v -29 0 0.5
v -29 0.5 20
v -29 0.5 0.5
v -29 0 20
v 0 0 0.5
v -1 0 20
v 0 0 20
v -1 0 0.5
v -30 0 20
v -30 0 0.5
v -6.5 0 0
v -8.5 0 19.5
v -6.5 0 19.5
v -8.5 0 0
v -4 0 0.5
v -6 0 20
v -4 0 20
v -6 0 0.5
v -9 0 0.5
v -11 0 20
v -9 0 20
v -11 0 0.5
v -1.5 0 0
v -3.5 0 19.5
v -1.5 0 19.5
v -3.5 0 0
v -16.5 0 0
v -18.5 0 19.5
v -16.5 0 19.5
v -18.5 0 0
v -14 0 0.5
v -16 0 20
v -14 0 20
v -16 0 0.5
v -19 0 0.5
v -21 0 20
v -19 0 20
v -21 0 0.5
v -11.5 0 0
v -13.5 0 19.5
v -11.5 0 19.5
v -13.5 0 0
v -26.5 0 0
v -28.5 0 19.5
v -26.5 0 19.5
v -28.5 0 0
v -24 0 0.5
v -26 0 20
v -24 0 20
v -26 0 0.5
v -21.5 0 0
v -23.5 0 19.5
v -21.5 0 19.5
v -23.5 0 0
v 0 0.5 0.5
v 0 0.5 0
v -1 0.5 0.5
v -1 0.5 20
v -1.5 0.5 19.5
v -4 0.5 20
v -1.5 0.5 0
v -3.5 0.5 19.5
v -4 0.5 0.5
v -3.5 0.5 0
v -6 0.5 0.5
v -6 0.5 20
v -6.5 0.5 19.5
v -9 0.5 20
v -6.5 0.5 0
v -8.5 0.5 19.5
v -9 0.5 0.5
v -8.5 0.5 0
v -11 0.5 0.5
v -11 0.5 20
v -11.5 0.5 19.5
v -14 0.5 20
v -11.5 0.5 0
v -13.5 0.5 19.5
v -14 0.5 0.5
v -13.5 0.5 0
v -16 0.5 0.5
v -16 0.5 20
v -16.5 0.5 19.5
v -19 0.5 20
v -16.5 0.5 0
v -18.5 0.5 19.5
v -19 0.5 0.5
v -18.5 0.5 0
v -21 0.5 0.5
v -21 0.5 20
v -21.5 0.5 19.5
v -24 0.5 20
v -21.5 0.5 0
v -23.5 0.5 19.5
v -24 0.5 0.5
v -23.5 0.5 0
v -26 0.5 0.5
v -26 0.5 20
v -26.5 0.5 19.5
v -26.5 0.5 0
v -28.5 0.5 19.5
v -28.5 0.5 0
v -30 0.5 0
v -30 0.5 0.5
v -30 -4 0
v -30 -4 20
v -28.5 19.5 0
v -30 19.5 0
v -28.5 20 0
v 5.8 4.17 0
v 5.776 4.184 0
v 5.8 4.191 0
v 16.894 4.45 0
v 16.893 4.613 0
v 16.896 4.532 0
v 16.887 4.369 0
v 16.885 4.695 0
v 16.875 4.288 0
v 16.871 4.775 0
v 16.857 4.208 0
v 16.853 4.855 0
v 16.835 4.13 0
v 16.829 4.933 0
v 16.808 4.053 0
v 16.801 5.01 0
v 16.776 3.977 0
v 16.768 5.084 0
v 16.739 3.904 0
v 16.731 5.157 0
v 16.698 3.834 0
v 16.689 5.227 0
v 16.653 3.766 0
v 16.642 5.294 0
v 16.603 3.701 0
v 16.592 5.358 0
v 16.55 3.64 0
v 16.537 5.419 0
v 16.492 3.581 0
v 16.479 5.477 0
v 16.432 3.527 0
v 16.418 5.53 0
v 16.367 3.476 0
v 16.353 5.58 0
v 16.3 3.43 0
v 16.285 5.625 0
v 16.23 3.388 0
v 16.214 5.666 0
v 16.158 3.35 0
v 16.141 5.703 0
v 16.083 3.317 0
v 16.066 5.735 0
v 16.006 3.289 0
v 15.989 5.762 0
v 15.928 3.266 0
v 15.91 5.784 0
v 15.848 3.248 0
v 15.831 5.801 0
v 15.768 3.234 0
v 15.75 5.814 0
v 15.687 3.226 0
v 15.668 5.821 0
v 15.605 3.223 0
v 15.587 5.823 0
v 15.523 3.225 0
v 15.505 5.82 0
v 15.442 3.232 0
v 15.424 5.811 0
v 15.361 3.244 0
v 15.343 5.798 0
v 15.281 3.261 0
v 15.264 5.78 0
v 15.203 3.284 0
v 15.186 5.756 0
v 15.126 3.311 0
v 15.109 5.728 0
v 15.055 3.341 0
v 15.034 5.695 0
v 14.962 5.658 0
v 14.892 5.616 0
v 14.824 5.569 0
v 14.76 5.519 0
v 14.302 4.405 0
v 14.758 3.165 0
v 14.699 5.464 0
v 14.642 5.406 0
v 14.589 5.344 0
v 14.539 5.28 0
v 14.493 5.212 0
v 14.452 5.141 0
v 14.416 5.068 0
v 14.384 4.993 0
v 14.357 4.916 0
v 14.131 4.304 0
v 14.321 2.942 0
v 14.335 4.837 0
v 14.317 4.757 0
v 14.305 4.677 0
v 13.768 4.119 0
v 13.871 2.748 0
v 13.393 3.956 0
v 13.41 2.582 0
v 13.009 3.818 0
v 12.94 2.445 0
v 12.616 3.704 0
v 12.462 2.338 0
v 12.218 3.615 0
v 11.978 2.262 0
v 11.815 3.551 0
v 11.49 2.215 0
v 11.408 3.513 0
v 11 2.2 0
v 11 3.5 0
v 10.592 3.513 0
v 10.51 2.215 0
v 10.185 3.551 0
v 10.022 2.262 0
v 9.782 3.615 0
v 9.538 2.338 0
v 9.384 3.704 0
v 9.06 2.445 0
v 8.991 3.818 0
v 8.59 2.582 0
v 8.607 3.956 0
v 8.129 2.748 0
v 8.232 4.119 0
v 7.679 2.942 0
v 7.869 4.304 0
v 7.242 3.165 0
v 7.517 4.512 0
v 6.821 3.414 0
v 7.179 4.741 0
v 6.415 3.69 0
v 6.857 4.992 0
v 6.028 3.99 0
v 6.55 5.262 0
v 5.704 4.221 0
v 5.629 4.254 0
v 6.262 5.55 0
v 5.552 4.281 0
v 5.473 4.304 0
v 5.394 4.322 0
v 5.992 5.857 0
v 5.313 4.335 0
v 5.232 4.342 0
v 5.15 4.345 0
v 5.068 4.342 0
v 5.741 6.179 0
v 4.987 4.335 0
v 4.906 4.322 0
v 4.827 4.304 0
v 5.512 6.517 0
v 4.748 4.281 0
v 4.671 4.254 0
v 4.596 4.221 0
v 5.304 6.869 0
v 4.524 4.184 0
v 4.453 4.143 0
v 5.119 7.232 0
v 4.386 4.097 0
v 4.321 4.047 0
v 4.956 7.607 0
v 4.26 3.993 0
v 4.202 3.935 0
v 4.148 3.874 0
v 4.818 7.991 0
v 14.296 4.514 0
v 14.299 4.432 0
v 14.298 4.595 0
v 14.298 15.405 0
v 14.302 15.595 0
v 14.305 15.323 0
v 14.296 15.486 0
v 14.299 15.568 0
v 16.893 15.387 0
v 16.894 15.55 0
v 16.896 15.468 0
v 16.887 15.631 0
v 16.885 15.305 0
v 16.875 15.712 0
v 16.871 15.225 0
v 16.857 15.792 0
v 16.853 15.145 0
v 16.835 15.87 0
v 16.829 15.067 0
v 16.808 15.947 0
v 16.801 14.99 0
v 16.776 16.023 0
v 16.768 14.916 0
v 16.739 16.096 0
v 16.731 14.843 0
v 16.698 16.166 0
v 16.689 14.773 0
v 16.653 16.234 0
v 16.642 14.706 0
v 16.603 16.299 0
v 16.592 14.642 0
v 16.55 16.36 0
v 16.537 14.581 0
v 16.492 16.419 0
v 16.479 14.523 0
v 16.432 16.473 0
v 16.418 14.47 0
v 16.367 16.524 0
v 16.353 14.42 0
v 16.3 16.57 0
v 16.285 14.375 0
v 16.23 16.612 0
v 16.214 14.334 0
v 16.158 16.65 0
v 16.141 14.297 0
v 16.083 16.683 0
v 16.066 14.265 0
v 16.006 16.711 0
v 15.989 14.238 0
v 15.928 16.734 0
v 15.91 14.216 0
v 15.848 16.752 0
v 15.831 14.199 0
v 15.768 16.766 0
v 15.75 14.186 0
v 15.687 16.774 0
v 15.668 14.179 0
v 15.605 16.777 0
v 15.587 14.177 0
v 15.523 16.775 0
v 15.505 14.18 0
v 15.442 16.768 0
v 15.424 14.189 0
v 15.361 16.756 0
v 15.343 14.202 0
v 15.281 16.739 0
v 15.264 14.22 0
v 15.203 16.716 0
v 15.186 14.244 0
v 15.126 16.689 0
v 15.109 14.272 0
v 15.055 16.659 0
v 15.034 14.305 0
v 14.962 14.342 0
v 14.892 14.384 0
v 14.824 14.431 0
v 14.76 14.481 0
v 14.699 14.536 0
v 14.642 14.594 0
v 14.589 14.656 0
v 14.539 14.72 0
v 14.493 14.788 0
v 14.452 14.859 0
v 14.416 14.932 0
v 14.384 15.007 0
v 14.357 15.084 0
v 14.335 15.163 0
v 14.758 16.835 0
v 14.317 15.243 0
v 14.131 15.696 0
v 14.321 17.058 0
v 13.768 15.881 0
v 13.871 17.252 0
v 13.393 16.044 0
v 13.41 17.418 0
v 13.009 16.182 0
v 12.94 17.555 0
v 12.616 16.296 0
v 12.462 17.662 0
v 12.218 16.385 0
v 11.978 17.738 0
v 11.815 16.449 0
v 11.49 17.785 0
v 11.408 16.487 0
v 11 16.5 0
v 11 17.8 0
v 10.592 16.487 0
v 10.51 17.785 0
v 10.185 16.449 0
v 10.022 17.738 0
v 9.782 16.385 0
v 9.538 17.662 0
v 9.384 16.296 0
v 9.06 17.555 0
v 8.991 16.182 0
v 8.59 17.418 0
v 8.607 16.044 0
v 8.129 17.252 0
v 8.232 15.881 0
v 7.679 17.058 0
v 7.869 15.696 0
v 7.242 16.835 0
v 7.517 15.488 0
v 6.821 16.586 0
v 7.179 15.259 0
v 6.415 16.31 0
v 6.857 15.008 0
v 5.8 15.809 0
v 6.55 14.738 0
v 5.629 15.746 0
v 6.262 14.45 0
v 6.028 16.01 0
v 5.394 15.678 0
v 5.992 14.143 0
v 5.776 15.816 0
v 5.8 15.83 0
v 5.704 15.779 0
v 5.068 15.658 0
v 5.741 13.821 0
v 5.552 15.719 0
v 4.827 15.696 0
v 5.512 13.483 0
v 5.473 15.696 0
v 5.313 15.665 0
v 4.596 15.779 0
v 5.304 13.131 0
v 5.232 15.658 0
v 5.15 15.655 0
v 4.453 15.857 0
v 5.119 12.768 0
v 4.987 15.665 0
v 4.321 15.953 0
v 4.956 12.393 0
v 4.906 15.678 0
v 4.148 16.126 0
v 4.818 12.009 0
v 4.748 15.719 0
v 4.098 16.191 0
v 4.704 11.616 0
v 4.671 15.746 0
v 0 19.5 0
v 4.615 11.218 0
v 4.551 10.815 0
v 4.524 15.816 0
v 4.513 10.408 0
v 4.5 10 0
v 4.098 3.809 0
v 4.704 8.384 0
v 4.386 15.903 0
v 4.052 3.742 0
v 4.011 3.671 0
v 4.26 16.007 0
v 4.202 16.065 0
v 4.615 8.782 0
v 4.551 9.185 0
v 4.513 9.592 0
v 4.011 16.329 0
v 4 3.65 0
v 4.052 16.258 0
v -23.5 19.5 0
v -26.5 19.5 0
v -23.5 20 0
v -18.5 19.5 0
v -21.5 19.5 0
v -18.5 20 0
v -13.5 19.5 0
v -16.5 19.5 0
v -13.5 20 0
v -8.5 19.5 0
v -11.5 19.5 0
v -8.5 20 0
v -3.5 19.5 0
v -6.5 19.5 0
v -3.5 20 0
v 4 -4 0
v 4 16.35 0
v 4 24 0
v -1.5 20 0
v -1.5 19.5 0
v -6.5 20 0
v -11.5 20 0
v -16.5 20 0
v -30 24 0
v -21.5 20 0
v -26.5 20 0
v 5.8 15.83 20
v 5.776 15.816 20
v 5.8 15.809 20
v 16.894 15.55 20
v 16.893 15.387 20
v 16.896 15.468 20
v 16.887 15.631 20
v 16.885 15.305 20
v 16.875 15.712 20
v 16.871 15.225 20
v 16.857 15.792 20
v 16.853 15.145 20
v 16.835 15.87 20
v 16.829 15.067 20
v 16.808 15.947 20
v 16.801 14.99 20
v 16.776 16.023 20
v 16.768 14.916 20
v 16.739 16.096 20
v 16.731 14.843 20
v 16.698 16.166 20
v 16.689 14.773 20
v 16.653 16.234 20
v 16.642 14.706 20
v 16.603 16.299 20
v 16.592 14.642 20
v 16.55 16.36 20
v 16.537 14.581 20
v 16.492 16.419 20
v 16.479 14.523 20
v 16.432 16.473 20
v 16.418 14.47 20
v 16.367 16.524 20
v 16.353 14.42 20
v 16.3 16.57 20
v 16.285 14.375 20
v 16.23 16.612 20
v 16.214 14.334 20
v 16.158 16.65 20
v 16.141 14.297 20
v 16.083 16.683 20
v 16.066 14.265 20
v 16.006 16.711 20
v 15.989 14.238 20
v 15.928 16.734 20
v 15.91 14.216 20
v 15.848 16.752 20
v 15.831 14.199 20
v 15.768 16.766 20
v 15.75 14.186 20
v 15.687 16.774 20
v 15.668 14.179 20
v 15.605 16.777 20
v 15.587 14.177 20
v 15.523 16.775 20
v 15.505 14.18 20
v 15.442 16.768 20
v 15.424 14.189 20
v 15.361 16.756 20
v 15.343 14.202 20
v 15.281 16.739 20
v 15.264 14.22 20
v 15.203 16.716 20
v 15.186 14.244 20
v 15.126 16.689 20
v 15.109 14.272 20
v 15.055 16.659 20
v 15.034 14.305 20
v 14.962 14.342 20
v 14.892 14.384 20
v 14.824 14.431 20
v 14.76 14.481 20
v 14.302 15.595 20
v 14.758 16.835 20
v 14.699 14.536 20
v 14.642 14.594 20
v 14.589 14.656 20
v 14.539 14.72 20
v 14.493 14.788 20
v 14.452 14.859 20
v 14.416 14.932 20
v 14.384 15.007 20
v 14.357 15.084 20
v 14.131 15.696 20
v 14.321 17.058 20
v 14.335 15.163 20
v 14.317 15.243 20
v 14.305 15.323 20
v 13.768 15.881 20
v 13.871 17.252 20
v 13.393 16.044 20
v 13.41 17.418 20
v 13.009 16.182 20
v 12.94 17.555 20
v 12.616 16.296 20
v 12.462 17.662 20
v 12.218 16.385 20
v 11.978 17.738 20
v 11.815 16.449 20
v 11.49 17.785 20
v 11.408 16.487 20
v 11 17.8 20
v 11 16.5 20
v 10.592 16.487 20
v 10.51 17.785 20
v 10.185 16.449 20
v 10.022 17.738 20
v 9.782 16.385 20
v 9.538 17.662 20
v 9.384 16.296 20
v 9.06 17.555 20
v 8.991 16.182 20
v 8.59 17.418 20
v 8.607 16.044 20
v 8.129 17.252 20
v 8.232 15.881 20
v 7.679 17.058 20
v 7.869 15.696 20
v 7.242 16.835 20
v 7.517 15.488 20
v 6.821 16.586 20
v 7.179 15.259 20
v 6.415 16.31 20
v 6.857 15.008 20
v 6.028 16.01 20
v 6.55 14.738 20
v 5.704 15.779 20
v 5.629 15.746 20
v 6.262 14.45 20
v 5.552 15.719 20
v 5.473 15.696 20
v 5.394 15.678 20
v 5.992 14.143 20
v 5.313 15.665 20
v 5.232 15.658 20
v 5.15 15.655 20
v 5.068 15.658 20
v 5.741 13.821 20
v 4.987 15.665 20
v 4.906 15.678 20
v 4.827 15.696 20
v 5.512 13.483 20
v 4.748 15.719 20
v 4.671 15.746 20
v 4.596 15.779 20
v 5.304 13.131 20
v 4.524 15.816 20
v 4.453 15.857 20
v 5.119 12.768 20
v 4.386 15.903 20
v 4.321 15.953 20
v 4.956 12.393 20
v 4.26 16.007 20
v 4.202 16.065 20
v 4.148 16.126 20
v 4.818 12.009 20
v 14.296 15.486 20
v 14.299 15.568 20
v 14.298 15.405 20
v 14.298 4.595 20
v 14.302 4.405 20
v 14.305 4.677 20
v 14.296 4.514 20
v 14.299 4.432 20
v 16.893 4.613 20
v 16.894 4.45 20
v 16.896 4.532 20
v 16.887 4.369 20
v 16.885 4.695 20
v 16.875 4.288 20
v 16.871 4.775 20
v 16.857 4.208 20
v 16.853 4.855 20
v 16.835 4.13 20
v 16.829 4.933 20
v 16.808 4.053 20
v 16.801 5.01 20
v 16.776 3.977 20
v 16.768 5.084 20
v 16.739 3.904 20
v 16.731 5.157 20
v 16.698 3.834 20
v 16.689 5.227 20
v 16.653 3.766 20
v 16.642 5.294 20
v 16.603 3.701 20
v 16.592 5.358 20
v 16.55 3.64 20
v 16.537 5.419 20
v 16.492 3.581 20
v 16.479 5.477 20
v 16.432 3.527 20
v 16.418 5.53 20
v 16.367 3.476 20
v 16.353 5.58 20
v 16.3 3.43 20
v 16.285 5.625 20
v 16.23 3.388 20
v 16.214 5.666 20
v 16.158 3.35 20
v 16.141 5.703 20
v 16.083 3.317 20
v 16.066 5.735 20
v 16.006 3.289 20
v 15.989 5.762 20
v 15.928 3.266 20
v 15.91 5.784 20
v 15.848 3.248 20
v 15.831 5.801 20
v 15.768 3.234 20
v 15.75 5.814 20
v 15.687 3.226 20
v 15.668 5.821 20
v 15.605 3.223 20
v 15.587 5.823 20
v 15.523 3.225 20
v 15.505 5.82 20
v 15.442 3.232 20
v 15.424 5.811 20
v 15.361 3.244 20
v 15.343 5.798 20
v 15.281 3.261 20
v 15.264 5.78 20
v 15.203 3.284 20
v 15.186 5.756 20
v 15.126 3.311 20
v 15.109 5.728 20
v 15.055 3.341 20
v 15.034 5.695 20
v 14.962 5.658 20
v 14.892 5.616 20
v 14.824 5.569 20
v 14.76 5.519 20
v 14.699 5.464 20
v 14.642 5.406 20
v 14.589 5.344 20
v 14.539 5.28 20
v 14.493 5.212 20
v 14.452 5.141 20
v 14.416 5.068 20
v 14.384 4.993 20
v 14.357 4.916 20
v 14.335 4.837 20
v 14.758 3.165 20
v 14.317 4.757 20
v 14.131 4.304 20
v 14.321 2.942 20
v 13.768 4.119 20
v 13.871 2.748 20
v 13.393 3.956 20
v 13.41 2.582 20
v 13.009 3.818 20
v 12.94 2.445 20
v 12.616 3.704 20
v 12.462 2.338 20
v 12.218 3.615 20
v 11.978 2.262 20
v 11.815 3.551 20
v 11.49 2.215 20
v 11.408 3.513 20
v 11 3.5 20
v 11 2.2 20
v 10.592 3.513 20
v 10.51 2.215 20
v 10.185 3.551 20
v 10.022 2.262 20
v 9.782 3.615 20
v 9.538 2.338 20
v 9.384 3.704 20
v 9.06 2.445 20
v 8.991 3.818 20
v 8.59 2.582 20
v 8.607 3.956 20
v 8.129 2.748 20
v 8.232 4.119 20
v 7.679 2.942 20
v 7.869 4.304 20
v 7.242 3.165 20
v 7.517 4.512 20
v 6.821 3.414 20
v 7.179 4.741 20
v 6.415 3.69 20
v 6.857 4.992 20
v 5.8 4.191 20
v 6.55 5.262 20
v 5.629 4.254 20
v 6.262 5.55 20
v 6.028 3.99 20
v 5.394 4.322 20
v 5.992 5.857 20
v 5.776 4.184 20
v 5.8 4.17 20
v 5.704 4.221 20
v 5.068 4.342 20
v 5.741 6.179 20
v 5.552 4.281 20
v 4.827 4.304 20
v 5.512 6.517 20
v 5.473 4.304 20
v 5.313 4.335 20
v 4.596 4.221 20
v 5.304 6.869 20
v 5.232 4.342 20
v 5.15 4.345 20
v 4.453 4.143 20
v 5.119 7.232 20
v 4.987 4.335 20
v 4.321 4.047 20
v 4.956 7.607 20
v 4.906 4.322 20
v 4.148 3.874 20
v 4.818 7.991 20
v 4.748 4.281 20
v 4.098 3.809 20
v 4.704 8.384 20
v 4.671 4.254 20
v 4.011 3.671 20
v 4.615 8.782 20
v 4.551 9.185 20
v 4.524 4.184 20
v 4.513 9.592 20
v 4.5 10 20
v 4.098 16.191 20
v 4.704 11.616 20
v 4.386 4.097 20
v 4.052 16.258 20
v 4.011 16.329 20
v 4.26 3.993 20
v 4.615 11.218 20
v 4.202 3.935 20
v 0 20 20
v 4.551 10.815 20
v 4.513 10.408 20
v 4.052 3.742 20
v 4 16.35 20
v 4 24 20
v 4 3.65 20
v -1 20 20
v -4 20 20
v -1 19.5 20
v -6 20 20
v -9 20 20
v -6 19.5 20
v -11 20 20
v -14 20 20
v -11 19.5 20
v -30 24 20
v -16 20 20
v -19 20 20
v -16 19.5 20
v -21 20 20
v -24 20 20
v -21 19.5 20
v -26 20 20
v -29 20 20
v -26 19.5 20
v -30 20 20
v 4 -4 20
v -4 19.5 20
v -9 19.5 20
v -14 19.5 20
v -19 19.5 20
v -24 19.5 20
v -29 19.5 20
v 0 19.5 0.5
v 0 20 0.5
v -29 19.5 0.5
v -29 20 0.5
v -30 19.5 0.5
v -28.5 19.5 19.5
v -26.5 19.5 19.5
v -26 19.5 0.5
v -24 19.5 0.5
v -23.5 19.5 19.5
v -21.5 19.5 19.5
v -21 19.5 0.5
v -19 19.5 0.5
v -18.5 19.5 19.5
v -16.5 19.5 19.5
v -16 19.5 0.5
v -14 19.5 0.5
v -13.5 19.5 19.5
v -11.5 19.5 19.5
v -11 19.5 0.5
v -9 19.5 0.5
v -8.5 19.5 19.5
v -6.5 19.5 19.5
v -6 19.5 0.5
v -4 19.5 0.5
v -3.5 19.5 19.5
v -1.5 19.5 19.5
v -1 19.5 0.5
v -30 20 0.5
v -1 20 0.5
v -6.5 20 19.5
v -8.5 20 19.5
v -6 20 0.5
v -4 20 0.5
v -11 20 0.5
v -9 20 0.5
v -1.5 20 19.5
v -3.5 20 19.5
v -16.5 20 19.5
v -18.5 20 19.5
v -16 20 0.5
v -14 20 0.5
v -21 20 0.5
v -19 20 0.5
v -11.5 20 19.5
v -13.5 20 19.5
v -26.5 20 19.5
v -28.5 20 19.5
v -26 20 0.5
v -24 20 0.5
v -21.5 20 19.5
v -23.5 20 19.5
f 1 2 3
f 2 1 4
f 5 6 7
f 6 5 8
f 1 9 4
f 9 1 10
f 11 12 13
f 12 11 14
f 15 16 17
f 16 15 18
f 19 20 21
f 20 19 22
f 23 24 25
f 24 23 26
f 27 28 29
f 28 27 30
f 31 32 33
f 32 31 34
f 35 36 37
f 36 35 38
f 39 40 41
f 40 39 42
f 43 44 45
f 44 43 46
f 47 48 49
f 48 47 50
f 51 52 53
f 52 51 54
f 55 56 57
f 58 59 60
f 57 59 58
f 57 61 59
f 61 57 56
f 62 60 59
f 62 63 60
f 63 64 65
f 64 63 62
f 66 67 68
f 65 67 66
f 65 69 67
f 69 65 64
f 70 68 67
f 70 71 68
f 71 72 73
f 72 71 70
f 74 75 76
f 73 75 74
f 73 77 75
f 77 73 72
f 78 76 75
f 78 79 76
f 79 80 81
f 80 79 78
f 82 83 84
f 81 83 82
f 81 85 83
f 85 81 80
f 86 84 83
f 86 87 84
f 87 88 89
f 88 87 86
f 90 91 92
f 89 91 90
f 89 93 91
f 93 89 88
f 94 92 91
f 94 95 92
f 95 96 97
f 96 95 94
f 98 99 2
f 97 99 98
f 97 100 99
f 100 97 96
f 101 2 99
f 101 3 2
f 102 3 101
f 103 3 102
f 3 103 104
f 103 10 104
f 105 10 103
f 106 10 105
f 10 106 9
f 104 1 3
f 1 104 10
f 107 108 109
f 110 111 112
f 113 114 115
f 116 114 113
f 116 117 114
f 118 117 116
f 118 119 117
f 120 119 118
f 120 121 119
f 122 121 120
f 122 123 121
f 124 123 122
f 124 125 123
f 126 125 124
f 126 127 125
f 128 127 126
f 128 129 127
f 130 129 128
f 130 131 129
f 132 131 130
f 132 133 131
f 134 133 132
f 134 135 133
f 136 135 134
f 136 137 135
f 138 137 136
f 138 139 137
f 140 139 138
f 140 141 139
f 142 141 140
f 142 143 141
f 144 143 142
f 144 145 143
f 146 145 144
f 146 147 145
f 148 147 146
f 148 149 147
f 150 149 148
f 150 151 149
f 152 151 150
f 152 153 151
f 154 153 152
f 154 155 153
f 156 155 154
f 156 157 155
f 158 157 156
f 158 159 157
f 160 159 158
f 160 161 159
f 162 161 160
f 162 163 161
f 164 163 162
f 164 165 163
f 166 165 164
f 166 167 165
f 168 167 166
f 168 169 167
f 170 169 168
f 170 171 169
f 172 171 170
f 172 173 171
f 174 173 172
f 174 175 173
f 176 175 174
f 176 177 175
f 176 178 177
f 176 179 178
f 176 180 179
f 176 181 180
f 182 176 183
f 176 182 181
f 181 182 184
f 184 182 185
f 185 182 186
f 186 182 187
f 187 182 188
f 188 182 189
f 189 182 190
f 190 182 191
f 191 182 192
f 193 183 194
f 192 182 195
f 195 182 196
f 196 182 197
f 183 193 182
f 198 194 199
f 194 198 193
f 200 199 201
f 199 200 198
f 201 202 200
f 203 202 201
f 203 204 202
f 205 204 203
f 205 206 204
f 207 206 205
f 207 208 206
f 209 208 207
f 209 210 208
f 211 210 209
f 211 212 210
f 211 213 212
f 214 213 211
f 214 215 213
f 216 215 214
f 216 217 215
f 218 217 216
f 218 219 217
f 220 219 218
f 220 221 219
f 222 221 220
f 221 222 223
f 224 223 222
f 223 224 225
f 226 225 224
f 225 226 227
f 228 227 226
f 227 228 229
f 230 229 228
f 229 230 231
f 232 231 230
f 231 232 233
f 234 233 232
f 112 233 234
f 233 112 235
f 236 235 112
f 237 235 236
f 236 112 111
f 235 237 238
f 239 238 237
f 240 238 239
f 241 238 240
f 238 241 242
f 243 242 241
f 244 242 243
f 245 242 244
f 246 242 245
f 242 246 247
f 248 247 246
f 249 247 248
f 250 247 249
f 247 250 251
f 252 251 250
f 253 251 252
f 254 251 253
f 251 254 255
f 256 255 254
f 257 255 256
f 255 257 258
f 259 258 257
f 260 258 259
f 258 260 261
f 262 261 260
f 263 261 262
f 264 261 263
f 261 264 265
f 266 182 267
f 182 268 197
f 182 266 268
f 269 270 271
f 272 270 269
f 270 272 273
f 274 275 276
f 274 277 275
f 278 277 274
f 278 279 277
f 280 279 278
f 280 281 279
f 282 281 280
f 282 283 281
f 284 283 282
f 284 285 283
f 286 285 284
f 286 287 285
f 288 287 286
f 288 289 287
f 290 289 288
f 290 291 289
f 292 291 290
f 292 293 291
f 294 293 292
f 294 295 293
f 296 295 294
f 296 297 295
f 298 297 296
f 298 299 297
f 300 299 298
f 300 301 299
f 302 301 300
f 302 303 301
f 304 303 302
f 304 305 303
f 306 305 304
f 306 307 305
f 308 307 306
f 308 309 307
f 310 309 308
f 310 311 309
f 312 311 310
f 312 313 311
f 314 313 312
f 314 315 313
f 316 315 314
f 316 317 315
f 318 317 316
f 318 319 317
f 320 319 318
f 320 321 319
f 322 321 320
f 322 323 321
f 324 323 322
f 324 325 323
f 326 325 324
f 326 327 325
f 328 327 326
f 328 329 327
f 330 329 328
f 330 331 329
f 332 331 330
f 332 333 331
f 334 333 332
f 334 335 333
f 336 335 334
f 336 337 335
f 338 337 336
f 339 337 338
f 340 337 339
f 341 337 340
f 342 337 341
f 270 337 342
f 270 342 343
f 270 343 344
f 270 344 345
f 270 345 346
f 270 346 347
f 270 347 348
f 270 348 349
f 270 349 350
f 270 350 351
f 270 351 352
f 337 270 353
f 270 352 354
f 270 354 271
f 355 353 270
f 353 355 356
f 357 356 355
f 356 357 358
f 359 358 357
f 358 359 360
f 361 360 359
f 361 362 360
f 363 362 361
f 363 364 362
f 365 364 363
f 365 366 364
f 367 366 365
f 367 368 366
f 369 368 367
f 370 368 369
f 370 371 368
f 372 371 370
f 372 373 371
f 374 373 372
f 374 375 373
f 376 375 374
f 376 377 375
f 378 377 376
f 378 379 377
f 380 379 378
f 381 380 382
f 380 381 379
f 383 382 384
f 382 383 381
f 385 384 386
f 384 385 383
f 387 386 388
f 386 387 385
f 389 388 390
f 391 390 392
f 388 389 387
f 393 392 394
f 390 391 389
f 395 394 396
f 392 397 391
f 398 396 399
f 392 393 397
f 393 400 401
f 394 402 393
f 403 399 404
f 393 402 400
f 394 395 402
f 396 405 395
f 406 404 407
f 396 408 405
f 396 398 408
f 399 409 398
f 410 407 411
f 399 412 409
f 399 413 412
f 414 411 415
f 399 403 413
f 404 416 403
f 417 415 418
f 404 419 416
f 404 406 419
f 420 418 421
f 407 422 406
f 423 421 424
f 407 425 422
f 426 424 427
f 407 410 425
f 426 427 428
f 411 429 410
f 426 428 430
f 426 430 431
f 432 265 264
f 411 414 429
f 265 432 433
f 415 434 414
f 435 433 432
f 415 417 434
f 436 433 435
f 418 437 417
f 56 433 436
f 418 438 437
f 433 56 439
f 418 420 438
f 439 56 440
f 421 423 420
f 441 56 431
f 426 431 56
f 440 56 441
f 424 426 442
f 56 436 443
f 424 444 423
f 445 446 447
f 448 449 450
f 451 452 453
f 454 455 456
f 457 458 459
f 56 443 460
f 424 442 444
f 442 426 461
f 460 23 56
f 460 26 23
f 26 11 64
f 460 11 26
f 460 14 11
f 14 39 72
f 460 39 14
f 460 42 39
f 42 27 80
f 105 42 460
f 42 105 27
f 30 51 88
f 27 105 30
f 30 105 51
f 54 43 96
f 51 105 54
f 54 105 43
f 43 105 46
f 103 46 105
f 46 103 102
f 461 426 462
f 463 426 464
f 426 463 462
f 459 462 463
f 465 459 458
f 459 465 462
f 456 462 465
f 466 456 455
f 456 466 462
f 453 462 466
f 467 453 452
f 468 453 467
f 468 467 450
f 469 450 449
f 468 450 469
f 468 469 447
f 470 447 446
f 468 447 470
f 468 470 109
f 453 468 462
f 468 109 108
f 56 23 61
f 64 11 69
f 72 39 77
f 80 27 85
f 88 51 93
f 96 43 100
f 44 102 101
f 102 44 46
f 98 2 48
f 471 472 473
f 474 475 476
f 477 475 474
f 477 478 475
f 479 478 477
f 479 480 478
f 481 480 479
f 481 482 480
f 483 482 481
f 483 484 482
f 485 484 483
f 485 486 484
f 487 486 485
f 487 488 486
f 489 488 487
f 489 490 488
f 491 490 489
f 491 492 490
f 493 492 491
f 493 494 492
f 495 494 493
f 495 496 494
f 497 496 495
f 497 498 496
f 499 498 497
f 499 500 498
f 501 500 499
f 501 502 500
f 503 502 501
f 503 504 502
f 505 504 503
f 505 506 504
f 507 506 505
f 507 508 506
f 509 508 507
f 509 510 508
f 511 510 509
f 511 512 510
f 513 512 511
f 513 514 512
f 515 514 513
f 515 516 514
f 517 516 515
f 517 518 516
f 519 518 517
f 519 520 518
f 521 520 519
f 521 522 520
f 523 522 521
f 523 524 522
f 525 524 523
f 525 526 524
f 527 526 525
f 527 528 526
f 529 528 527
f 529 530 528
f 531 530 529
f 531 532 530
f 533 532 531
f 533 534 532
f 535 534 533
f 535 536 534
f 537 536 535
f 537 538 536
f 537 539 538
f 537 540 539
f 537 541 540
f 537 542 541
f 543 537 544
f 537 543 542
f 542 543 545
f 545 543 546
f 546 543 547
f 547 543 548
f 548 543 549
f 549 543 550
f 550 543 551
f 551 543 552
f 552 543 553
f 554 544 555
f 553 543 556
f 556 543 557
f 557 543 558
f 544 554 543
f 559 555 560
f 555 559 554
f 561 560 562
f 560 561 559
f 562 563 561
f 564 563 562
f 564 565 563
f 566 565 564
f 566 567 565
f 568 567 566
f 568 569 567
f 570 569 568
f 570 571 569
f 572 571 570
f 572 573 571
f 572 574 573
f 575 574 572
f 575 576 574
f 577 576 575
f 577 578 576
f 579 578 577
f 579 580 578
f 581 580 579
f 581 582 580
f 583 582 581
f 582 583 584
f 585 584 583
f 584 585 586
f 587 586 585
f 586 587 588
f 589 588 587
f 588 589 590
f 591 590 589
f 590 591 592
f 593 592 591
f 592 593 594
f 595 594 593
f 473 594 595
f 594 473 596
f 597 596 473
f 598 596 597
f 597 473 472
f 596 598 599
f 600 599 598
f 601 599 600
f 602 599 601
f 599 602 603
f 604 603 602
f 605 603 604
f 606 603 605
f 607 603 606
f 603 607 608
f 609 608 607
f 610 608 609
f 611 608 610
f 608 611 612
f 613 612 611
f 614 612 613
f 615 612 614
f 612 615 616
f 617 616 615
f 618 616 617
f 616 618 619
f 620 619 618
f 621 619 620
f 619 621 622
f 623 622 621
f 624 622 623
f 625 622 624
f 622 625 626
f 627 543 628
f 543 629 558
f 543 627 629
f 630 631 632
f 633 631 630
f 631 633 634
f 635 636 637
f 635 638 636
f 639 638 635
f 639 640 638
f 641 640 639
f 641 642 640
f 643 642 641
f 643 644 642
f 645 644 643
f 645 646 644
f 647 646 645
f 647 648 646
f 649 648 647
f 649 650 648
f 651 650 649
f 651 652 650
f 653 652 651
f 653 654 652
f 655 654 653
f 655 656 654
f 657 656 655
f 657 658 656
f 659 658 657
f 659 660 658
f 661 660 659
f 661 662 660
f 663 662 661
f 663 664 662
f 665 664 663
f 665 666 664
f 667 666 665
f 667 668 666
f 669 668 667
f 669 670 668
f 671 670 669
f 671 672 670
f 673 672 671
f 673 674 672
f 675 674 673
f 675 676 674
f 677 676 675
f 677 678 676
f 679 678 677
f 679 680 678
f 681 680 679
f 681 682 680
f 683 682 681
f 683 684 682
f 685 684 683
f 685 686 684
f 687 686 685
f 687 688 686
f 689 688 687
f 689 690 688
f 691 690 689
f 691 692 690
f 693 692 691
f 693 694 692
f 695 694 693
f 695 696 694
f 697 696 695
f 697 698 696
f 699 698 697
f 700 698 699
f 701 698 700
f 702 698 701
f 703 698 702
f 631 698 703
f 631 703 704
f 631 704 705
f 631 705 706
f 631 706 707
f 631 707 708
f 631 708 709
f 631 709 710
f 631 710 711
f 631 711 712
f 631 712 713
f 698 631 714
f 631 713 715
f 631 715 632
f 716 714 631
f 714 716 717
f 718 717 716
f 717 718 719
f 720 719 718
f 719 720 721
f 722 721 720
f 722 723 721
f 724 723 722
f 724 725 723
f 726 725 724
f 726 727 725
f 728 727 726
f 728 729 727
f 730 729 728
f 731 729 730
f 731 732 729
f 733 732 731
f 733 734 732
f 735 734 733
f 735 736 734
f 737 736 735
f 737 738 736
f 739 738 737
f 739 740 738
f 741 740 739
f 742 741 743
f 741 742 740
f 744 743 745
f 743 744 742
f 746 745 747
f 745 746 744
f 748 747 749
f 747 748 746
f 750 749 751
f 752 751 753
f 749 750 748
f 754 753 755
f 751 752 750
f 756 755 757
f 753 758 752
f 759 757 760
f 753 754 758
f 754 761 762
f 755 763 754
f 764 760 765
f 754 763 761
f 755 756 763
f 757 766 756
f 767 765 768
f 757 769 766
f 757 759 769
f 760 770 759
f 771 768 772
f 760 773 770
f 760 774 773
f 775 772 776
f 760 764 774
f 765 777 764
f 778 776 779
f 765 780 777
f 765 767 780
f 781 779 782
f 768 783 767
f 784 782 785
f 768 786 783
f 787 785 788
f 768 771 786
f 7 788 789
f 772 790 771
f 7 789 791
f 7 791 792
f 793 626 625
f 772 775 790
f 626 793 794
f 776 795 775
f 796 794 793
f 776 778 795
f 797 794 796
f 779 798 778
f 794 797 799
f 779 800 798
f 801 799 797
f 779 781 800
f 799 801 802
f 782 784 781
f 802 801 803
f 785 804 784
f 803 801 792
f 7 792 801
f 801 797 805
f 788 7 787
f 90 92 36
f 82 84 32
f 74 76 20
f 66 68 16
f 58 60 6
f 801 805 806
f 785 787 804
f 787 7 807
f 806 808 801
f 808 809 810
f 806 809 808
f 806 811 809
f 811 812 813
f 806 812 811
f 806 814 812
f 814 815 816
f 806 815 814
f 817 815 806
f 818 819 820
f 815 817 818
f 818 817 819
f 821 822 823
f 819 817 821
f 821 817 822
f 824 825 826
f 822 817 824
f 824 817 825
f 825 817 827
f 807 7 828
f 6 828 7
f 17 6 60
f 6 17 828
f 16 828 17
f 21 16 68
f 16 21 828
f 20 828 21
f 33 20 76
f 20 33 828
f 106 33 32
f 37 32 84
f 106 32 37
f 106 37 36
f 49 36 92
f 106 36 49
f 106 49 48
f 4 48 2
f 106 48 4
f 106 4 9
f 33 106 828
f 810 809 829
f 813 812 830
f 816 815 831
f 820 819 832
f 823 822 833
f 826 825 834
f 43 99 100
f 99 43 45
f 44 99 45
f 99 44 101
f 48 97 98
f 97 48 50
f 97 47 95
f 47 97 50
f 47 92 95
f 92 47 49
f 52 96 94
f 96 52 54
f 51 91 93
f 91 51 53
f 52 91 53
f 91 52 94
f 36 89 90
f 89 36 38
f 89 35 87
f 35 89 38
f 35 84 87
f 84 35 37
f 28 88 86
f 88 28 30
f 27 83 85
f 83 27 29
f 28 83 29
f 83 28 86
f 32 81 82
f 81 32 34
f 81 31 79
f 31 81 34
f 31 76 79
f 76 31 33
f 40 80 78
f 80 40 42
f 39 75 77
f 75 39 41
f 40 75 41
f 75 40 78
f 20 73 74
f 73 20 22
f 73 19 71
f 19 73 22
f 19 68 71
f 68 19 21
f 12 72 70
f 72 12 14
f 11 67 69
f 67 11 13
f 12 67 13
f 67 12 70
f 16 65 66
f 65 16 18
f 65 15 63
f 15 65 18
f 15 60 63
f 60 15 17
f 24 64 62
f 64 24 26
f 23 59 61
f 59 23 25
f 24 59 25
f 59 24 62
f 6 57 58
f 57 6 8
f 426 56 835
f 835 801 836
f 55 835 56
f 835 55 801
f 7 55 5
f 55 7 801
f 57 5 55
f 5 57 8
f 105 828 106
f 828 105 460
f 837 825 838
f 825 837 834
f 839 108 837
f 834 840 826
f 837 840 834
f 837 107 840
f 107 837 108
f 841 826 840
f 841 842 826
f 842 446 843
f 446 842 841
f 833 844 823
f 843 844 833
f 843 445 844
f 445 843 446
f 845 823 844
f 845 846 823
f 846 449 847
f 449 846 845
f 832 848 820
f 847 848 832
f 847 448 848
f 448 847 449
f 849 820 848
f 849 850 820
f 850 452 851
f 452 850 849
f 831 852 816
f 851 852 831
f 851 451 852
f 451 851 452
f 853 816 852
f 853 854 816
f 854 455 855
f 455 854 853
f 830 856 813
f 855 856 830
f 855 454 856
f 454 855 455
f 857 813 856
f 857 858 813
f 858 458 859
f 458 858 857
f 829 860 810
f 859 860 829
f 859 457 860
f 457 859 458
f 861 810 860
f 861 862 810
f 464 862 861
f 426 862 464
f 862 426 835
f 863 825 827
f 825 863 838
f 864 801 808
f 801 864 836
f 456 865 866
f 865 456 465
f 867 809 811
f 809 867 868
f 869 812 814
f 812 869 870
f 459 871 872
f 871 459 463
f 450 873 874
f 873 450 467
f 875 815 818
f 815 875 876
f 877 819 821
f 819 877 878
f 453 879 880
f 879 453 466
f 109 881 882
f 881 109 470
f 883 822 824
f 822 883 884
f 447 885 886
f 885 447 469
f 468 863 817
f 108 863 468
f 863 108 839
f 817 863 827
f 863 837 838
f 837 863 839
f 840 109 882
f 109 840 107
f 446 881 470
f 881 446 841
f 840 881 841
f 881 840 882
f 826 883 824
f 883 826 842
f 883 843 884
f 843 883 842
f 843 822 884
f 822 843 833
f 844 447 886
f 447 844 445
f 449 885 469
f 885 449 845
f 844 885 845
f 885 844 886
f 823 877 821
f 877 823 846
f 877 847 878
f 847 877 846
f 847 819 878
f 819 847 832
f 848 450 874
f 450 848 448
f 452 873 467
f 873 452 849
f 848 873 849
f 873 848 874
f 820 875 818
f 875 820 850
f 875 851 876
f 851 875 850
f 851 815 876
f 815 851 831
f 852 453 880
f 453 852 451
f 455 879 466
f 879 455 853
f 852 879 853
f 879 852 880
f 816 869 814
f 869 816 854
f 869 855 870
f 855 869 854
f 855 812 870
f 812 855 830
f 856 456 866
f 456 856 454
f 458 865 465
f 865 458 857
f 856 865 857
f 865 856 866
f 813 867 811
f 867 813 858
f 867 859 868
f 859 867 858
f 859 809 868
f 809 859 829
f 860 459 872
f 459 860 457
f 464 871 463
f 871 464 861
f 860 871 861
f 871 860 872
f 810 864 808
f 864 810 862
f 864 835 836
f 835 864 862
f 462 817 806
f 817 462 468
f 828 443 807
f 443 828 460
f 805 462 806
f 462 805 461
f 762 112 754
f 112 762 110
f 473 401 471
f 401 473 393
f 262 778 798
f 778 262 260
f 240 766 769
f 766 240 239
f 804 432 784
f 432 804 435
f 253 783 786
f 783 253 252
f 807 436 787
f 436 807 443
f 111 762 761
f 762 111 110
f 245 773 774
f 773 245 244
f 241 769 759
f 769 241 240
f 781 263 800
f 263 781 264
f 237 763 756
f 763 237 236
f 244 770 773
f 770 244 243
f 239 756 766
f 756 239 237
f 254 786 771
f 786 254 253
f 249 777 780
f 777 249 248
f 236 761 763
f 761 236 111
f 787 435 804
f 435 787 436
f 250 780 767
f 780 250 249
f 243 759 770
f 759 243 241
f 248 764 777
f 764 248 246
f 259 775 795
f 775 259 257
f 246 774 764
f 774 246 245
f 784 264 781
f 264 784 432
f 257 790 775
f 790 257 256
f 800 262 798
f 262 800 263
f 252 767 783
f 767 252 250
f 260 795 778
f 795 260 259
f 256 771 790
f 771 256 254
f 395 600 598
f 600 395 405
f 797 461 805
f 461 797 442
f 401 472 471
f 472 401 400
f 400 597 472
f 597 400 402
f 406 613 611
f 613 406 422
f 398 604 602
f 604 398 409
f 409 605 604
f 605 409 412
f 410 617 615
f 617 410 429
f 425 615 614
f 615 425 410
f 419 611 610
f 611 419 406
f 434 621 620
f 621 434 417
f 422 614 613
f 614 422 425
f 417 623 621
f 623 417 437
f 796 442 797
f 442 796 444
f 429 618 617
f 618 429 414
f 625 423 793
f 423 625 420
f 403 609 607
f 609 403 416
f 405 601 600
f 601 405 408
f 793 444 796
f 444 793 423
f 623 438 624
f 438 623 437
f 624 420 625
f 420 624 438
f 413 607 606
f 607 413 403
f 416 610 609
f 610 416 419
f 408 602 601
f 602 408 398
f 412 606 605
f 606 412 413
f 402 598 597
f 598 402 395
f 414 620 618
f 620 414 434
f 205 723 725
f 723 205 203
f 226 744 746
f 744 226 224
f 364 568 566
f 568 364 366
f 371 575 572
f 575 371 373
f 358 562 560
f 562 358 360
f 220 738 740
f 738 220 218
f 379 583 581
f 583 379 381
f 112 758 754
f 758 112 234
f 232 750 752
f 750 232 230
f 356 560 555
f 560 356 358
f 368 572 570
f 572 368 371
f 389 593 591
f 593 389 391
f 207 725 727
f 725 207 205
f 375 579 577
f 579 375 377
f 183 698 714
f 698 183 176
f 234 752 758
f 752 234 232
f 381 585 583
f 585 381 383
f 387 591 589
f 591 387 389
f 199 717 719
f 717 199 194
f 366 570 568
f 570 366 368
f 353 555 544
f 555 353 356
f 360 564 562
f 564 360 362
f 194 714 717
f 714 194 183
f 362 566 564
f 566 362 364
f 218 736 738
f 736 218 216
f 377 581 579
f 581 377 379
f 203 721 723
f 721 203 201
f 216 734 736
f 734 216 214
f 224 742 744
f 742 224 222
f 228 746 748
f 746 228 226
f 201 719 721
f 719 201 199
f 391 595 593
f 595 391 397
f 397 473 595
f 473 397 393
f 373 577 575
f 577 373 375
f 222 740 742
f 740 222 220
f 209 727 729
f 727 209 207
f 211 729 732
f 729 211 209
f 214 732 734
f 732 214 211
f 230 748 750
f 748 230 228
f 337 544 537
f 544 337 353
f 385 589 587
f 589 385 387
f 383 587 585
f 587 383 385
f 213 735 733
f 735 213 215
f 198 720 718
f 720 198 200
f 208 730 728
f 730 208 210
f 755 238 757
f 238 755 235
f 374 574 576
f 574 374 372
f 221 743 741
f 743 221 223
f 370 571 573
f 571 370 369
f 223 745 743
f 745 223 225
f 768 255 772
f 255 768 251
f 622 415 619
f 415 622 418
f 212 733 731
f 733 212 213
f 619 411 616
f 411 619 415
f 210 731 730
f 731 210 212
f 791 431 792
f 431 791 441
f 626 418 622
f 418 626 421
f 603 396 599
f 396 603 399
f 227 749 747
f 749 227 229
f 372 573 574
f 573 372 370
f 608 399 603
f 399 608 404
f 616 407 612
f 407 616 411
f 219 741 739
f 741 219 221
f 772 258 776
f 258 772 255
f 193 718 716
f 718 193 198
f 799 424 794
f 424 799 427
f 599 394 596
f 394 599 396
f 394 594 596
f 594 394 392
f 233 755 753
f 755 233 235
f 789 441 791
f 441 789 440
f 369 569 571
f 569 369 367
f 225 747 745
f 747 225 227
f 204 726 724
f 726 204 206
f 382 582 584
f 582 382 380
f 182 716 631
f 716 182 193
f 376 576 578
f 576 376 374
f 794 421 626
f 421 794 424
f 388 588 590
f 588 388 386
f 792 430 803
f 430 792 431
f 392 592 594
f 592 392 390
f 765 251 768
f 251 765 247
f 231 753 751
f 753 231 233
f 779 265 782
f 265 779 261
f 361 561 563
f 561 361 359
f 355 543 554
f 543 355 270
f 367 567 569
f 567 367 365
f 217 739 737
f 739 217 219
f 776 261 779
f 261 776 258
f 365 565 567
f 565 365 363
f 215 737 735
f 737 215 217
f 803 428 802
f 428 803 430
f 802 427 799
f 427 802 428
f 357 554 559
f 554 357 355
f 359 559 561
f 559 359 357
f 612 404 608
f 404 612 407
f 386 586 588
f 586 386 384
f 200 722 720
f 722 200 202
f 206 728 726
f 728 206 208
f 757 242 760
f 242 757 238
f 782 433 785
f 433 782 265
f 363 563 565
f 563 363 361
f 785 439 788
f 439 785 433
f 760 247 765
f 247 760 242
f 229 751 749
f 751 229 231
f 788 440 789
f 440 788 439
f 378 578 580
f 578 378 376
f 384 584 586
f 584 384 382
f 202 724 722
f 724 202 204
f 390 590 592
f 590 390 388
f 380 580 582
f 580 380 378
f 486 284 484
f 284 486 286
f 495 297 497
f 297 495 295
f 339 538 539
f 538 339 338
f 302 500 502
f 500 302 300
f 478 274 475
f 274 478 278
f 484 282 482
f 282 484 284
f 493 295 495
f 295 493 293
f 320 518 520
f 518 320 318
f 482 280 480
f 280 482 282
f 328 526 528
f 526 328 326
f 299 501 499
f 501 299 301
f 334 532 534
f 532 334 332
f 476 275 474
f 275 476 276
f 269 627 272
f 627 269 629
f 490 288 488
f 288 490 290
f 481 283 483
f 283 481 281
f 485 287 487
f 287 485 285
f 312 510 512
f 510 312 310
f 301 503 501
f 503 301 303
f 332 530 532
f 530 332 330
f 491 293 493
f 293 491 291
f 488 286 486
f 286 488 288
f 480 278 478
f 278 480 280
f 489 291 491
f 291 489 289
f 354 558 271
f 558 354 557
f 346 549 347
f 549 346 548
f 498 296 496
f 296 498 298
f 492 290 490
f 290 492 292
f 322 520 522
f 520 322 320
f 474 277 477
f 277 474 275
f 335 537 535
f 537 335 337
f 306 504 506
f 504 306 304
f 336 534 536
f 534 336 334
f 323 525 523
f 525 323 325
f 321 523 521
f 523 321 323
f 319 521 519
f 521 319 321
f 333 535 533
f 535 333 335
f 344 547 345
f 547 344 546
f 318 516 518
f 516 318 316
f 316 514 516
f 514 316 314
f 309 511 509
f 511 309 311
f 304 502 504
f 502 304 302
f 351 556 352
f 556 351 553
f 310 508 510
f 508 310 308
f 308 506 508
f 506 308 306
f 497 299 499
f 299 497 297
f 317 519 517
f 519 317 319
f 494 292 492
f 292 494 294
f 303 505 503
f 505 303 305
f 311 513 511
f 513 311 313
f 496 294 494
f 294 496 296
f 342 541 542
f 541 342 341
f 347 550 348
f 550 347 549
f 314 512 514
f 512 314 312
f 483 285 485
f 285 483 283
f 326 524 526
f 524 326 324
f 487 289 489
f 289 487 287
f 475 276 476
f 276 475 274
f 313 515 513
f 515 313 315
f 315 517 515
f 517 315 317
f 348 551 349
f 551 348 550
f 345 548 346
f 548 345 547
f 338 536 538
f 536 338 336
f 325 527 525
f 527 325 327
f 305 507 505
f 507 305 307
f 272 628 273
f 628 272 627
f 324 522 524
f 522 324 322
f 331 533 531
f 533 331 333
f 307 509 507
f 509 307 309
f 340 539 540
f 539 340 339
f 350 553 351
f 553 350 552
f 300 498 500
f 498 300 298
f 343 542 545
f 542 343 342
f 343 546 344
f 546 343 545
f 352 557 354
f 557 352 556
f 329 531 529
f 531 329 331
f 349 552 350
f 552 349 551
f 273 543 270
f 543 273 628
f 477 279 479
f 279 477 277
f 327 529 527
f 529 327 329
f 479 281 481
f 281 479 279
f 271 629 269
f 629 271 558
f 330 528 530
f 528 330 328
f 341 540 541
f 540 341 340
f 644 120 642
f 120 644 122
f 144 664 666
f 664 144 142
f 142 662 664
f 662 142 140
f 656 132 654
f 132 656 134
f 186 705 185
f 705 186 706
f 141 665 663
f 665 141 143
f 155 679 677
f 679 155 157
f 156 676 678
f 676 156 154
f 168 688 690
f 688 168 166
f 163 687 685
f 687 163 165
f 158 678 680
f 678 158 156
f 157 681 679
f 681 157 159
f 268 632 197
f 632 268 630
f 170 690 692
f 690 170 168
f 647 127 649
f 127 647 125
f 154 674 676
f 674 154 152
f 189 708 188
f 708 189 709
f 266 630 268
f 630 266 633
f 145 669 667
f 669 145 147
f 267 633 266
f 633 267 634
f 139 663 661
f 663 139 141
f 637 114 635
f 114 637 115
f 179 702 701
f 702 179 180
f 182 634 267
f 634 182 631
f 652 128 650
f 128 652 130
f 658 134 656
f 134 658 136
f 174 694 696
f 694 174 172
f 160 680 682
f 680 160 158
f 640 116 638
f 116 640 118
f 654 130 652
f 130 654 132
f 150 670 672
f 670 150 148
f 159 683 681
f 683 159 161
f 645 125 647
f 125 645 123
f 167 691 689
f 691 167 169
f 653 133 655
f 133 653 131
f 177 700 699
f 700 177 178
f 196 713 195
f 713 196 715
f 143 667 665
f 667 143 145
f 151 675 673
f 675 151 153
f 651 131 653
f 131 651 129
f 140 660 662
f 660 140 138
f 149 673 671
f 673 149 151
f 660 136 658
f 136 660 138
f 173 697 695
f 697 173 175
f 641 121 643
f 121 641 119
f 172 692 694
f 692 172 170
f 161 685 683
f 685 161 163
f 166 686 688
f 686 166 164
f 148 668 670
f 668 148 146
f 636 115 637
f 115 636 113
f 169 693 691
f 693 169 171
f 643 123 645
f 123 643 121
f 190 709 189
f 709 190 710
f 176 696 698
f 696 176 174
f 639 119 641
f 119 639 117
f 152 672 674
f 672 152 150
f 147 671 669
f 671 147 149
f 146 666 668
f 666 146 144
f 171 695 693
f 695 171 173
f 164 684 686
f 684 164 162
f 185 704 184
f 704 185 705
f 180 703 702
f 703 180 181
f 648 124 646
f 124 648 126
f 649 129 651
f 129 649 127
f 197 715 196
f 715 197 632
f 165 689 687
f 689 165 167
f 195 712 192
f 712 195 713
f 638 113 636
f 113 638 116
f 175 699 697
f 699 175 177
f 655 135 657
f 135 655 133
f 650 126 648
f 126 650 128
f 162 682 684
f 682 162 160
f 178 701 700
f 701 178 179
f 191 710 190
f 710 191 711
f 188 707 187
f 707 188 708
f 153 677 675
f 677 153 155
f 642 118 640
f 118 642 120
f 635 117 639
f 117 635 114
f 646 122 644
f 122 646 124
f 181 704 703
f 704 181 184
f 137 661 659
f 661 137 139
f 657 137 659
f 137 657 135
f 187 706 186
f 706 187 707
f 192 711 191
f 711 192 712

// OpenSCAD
// the thickness of the lines as as seen from above (don't recommend much more than 6 or the geometry gets messy)
thickness = 4;
// how high it will protrude from the build plate
width = 20;
// the length of the part that goes onto the shelf
length = 30;
// the shelf thickness
shelf = 20;
// (in mm)
Clip_Diameter = 13;
// (in mm)
Clip_Thickness = 20;
$fn=100;
TZT_Rad=Clip_Diameter/2;
TZT_Thk=Clip_Thickness;
/*[ Zigzag repeats ]*/
repeats = 5;//[0:200]
/*[ Thickness ]*/
zigzag_thickness = 5;//[1:200]
/*[ Long edge length ]*/
longEdgeLength = Clip_Thickness;  //10;//[2:500]
/*[ Short edge length ]*/
shortEdgeLength = 20;//[1:200]
//Scale some values down a bit, to enable user finer control.
thickness2 = zigzag_thickness / 10;
shortEdgeLength2 = shortEdgeLength / 10;

module hook() {
  union() {
    // the part above the shelf
    translate([-length, 0, 0])
      union() {
    cube([length, width, thickness]);
    translate([0, 0, -0.5])  makeLoops(repeats);}

	 // the part below the shelf
      translate([-length, 0, -(shelf+thickness)])
    union() {
	 cube([length, width, thickness]);
     translate([0, 0, thickness])  makeLoops(repeats);}

    // the part that goes down to the hook
    translate([0, 0, -shelf-thickness])
    cube([thickness, width, shelf+thickness*2]);

  }
}

module TZT_CLIP () {
    difference () {
        union () {
            translate ([-TZT_Rad*1.1,0,0]) {
                difference () {
                    cube ([TZT_Rad*.6,TZT_Rad*2.2,TZT_Thk],true) ;
                    translate ([TZT_Rad*.2,TZT_Rad*1.07,0]) {
                        cylinder (TZT_Thk*1.1,TZT_Rad*.2,TZT_Rad*.2,true);
                    }
                    translate ([TZT_Rad*.2,-TZT_Rad*1.07,0]) {
                        cylinder (TZT_Thk*1.1,TZT_Rad*.2,TZT_Rad*.2,true);
                    }

                }
            }
            cylinder (TZT_Thk,TZT_Rad*1.2,TZT_Rad*1.2,true);
        }
        cylinder (TZT_Thk*4,TZT_Rad,TZT_Rad,true);
        translate ([TZT_Rad*1.3,0,0]) {
            cylinder (TZT_Thk+1,TZT_Rad,TZT_Rad,true);
        }
    }
    for (TZT_i=[-50:100:50]) {
        rotate ([0,0,TZT_i]) {
            translate ([TZT_Rad*1.1,0,0]) {
                cylinder (TZT_Thk,TZT_Rad*.2,TZT_Rad*.2,true);
            }
        }
    }
}

rotate([90, 0, 0])
union() {
    hook();
    rotate([90, 0, 0]) translate([11,-10,-10]) TZT_CLIP();
}

module makeLoops(repeats) {
    for(i=[0:repeats]) {
        translate([(thickness2 * 2 + shortEdgeLength2 * 2) * i, 0, 0])
            makeLoop();
    }
}

module makeLoop() {
    cube([shortEdgeLength2 / 2, thickness2, thickness2]);
    translate([shortEdgeLength2 / 2, 0, 0])
        cube([thickness2, longEdgeLength, thickness2]);
    translate([(shortEdgeLength2 / 2) + thickness2, longEdgeLength - thickness2, 0])
        cube([shortEdgeLength2, thickness2, thickness2]);
    translate([(thickness2) + shortEdgeLength2 + (shortEdgeLength2 / 2), 0, 0])
        cube([thickness2, longEdgeLength, thickness2]);
    translate([(thickness2 * 2) + shortEdgeLength2 + (shortEdgeLength2 / 2), 0, 0])
        cube([shortEdgeLength2 / 2, thickness2, thickness2]);
}
